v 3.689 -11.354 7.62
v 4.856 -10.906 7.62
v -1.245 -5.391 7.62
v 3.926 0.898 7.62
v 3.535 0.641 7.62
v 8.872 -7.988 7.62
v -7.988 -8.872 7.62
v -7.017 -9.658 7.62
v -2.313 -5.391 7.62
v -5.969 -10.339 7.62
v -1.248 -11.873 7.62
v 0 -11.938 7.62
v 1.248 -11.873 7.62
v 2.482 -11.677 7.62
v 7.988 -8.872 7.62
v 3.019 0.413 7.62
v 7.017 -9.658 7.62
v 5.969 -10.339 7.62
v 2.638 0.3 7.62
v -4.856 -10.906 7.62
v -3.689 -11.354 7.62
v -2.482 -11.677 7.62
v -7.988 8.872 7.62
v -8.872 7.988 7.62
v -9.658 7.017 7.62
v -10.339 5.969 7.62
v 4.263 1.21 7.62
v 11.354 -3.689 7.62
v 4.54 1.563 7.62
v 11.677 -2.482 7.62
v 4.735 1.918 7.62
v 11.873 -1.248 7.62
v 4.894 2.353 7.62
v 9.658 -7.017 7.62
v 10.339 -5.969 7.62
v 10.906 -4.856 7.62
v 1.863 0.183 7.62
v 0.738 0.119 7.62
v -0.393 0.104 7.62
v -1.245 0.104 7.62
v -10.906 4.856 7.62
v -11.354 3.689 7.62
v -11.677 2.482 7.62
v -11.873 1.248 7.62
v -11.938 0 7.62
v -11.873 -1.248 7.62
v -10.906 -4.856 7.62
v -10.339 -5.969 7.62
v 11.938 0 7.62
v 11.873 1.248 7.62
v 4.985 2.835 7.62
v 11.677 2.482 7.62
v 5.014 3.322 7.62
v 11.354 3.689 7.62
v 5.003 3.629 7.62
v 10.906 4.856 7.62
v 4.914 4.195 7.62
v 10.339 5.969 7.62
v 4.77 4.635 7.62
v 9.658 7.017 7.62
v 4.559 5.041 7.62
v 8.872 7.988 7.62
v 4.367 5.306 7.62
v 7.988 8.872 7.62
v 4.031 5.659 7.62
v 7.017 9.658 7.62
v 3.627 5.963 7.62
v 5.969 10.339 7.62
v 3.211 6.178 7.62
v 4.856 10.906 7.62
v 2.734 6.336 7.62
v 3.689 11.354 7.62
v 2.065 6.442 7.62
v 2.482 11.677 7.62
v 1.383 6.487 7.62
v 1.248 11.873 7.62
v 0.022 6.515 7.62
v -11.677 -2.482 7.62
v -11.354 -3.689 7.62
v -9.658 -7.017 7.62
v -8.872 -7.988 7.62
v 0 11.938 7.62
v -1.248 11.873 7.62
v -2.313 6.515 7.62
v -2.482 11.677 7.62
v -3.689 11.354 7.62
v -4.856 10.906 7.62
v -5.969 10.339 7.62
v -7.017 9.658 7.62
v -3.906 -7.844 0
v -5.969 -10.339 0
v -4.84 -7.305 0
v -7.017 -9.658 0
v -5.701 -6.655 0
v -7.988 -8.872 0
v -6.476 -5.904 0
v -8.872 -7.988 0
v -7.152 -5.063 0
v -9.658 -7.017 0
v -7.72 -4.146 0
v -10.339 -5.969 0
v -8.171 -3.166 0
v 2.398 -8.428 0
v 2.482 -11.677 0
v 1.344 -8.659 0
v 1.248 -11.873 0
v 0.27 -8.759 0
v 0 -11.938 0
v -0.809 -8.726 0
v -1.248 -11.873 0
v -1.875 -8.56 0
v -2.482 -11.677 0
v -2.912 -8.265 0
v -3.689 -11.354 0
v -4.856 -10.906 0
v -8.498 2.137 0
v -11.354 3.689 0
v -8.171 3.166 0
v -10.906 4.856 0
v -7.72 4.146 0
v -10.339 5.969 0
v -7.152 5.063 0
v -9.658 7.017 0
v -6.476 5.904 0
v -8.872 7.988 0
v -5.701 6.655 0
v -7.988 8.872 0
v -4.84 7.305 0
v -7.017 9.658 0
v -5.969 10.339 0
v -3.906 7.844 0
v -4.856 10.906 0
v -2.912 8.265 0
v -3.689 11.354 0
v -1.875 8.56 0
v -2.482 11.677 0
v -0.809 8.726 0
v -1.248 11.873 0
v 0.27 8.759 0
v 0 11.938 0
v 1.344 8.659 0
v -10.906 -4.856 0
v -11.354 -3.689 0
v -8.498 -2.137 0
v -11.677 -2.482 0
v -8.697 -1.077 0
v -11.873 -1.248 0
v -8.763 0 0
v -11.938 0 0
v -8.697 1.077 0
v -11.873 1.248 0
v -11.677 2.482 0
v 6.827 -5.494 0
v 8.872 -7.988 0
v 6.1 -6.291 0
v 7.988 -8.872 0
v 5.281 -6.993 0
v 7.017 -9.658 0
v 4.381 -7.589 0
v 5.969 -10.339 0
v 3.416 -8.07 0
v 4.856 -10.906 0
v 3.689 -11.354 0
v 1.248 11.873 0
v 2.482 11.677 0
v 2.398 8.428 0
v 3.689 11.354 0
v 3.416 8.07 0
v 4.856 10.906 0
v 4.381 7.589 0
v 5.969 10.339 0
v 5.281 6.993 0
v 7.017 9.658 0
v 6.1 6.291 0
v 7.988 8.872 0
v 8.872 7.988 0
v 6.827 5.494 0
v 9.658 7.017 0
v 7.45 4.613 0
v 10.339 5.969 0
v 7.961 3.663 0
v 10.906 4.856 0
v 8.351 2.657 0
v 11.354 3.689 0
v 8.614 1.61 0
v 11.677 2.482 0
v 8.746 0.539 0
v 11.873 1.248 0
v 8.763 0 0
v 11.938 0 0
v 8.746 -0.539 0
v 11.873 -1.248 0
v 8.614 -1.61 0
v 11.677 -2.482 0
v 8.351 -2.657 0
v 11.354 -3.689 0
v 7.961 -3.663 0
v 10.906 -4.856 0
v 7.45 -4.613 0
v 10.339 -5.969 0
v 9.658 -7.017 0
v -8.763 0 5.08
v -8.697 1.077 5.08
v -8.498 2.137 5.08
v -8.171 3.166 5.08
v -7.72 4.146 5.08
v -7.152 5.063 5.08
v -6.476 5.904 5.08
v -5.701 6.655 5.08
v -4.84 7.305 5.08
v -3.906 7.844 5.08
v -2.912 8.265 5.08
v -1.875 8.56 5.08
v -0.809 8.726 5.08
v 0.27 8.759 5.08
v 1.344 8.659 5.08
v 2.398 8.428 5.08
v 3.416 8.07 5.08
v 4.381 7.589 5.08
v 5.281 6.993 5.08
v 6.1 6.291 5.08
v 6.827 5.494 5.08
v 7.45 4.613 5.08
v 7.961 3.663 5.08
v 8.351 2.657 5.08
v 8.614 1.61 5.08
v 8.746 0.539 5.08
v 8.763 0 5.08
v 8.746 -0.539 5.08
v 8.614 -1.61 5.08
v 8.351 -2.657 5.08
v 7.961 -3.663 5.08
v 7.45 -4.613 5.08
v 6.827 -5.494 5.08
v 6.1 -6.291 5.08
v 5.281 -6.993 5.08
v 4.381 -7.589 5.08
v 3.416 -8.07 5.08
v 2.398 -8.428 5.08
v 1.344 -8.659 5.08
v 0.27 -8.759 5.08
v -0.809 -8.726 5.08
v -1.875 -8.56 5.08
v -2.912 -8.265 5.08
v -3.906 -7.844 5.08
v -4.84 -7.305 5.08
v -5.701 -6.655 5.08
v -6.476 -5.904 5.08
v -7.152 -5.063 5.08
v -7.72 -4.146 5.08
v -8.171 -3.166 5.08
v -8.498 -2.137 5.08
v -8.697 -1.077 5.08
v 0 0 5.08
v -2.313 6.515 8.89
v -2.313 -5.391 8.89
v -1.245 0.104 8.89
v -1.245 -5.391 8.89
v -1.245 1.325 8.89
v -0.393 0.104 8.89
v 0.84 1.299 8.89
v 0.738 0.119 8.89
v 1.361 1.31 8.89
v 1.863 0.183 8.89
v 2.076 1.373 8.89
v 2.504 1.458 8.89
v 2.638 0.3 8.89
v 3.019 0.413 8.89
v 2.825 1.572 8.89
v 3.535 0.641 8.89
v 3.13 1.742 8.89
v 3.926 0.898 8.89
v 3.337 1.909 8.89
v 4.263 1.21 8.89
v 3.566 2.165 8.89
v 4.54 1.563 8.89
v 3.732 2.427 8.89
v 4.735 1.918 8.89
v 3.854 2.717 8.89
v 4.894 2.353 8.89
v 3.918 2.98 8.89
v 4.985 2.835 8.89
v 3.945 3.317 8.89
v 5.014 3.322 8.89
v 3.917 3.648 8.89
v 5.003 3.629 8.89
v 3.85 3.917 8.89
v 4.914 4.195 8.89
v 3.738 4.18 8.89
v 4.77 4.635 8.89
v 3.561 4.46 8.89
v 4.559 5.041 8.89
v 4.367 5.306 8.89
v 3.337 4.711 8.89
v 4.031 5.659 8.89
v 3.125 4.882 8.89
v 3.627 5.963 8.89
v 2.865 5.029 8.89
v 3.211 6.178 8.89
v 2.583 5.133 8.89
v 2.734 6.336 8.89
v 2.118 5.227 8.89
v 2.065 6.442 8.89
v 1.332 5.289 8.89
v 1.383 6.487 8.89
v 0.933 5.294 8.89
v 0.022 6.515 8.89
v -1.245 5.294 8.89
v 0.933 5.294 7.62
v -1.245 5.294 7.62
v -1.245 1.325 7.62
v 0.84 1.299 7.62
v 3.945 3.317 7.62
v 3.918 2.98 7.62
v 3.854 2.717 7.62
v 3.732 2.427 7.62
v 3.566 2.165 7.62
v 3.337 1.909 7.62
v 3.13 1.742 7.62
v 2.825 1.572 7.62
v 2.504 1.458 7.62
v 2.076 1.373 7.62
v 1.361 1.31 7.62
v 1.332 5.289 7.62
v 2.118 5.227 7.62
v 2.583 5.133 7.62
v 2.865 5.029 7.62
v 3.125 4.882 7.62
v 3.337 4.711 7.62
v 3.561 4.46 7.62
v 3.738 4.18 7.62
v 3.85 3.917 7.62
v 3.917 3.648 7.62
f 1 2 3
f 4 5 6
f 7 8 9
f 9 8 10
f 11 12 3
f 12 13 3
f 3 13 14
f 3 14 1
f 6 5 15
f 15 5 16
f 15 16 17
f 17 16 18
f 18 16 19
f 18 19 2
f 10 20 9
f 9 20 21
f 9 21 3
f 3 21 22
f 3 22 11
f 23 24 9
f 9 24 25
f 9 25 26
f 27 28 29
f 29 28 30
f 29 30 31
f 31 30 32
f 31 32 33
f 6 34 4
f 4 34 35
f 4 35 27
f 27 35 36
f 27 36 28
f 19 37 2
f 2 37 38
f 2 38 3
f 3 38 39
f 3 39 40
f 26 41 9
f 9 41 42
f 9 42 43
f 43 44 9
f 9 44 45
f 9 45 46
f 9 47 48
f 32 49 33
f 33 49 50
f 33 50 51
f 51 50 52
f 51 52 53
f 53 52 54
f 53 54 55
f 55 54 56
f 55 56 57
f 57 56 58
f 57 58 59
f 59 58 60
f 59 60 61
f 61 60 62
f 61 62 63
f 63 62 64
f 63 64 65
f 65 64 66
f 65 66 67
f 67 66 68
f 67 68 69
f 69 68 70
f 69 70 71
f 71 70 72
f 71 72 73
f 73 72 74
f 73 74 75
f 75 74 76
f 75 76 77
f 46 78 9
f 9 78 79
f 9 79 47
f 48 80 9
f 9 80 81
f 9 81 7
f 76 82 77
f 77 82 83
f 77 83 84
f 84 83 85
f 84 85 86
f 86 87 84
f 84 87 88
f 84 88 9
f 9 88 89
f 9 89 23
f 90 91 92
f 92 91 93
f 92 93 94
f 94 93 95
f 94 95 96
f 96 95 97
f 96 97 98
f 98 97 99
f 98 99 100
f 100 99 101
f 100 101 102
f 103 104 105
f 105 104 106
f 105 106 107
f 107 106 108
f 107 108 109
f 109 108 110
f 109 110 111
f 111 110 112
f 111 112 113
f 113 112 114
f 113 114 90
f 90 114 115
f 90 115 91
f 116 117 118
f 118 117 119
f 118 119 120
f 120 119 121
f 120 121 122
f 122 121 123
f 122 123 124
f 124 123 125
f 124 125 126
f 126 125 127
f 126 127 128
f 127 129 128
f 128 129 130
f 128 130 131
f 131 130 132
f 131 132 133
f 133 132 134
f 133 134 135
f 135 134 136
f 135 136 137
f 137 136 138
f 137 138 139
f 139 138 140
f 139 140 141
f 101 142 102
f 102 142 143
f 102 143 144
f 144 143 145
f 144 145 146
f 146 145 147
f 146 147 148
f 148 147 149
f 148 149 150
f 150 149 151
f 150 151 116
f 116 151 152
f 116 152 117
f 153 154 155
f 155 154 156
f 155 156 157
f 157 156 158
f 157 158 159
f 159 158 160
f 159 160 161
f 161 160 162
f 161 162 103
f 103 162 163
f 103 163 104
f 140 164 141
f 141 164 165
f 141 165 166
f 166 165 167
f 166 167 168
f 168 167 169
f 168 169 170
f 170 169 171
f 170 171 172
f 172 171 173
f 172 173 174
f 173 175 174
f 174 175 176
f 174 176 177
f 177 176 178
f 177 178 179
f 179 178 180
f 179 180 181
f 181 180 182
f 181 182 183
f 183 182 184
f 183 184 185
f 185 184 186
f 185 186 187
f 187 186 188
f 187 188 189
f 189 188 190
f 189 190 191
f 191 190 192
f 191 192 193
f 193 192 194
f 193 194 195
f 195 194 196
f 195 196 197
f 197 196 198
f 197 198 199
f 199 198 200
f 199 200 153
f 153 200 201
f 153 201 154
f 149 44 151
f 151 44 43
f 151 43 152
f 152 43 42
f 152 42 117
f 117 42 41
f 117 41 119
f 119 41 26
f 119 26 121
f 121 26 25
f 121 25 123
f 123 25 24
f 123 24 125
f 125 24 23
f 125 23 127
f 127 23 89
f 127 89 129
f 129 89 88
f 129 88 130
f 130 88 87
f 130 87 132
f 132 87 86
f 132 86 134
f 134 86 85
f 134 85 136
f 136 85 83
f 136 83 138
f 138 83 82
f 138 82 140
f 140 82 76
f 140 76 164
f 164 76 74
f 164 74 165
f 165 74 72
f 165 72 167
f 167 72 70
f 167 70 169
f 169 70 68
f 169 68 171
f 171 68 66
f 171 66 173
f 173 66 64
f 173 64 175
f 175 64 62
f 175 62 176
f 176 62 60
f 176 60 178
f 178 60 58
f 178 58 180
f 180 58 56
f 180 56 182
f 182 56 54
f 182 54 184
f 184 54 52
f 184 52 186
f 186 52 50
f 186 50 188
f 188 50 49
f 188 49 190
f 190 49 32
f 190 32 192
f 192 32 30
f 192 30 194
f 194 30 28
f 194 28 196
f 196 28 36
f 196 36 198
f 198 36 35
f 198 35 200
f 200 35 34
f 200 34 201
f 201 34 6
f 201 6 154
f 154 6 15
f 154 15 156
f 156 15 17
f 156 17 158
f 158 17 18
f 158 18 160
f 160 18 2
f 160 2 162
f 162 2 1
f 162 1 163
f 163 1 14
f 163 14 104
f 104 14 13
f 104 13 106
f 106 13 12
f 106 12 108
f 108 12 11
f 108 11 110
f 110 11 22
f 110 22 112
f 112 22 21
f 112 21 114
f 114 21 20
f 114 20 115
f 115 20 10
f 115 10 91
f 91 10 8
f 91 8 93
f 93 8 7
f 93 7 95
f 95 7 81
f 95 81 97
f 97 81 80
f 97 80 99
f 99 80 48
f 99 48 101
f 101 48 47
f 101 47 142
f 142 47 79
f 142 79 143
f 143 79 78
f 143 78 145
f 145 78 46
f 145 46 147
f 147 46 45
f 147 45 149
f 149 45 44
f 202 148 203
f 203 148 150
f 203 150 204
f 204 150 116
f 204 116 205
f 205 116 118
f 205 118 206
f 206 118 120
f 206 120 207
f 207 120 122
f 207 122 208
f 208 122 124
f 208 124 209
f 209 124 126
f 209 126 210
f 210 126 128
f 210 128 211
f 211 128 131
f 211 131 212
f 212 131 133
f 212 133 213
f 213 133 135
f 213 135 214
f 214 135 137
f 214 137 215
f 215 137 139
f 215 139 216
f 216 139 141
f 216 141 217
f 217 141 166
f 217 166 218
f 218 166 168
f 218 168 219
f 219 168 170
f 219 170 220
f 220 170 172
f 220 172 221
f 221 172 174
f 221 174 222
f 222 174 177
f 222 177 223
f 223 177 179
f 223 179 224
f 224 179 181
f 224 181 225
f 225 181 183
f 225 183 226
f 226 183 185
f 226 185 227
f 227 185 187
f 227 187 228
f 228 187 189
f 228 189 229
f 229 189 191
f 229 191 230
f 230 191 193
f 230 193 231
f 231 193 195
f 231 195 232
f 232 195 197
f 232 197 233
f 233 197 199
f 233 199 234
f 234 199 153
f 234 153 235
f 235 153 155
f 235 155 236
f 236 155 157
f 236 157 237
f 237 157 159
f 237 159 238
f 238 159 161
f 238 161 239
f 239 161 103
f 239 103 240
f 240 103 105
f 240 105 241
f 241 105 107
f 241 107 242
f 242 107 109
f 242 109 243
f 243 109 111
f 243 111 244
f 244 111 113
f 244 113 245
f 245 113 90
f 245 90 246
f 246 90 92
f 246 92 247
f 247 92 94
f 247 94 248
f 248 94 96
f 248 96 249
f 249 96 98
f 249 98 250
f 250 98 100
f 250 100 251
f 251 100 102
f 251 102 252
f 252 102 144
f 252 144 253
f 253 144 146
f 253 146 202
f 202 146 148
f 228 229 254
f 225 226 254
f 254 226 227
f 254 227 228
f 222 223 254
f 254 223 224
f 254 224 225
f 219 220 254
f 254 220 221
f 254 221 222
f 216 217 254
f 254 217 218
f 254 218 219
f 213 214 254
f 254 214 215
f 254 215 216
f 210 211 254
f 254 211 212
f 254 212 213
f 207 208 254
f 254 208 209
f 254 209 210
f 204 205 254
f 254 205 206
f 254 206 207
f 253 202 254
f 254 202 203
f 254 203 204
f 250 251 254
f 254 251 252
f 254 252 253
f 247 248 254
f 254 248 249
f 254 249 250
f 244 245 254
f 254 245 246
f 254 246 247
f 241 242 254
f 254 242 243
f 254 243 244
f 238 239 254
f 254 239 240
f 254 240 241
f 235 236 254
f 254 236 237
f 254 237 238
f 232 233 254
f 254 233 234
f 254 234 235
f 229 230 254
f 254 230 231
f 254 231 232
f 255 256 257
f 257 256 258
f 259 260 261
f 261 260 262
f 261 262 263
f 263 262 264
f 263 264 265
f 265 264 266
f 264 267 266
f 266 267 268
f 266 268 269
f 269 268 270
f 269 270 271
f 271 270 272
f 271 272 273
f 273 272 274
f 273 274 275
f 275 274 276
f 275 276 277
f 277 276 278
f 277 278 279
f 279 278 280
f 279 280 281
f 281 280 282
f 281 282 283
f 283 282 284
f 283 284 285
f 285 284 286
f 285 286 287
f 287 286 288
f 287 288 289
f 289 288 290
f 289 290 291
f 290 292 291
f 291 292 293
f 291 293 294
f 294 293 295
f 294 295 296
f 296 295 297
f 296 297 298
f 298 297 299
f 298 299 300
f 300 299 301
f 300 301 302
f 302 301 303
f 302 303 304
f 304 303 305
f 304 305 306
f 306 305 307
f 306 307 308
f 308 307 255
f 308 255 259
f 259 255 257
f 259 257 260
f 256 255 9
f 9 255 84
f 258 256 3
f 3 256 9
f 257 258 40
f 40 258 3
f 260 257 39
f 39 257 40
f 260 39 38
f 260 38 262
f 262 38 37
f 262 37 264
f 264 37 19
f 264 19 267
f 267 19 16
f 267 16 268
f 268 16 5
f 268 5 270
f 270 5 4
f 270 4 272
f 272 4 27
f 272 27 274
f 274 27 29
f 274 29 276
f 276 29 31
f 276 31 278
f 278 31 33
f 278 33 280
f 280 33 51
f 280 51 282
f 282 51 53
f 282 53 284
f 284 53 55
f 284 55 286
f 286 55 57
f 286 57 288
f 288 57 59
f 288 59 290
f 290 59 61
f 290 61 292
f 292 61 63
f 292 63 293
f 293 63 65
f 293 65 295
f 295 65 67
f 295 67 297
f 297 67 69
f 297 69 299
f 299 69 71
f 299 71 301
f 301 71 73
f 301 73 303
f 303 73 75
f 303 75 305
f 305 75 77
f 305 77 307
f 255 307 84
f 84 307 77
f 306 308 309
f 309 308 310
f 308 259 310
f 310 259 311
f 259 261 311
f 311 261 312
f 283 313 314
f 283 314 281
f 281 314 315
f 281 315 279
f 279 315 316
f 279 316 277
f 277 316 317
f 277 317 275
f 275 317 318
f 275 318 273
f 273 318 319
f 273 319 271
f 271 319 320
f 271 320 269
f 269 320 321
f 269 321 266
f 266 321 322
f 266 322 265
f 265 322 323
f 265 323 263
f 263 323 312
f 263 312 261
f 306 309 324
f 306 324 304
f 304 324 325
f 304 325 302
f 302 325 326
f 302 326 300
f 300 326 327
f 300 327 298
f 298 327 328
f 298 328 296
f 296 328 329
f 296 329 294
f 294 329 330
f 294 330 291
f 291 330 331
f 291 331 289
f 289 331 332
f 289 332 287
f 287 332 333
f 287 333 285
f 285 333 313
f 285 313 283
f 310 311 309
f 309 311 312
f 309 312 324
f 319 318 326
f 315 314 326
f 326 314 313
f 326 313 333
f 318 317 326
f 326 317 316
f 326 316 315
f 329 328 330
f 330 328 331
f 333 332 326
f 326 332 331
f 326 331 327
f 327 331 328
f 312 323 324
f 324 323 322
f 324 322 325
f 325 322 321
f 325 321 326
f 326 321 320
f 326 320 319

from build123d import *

# Parameters (mm, degrees)
SKETCH1_R           = 11.938
SKETCH1_R_2         = 8.763
BOSS_EXTRUDE1_DEPTH = 5.08
SKETCH2_R           = 11.938
BOSS_EXTRUDE2_DEPTH = 2.54
BOSS_EXTRUDE3_DEPTH = 1.27


with BuildPart() as part:
    # Sketch1 → Boss-Extrude1 (new body)
    with BuildSketch(Plane.XY):
        Circle(SKETCH1_R)
        Circle(SKETCH1_R_2, mode=Mode.SUBTRACT)
    extrude(amount=BOSS_EXTRUDE1_DEPTH)

    # Sketch2 → Boss-Extrude2 (add)
    with BuildSketch(Plane.XY.offset(5.08)):
        Circle(SKETCH2_R)
    extrude(amount=BOSS_EXTRUDE2_DEPTH)

    # Sketch3 → Boss-Extrude3 (add)
    with BuildSketch(Plane.XY.offset(7.62)):
        with BuildLine():
            Line((-2.313117578, 6.515240045), (0.02186214, 6.515240045))
            add(Edge.make_bspline(
                [(0.02186214, 6.515240045), (0.182463526, 6.515063505), (0.490182914, 6.514725246), (0.931445737, 6.504469727), (1.332209199, 6.490771783), (1.691609156, 6.471783379), (2.010751418, 6.449343193), (2.288191875, 6.417869737), (2.526111258, 6.385007482), (2.668668019, 6.351597161), (2.733682302, 6.336360087)],
                knots=[0, 0, 0, 0, 1.415646017, 2.712440637, 3.8905458, 4.950247383, 5.884950622, 6.709939814, 7.411656543, 8, 8, 8, 8], degree=3))
            add(Edge.make_bspline(
                [(2.733682302, 6.336360087), (2.81598352, 6.313833632), (2.97864663, 6.269311531), (3.213033214, 6.180138061), (3.436033349, 6.074403196), (3.648412132, 5.953898543), (3.847559754, 5.813453901), (4.036447447, 5.658762398), (4.213408273, 5.486252508), (4.377447115, 5.297859098), (4.528094507, 5.096744813), (4.657803517, 4.879907406), (4.766413102, 4.650996811), (4.859565123, 4.410172252), (4.926609062, 4.15541142), (4.977115034, 3.888484478), (5.009172195, 3.609420041), (5.012242517, 3.418716385), (5.013805499, 3.321636529)],
                knots=[0, 0, 0, 0, 0.999701418, 1.975846123, 2.934577507, 3.890451536, 4.834027766, 5.787354733, 6.749476667, 7.726910423, 8.712836071, 9.690891519, 10.682875813, 11.679750201, 12.712814741, 13.765529915, 14.8625177, 16, 16, 16, 16], degree=3))
            add(Edge.make_bspline(
                [(5.013805499, 3.321636529), (5.012371903, 3.223740699), (5.009566974, 3.032200896), (4.975901932, 2.751986322), (4.930555476, 2.484203227), (4.860828897, 2.229445364), (4.769505669, 1.989225645), (4.662376454, 1.759873061), (4.533164623, 1.545289534), (4.384694265, 1.344696036), (4.219532145, 1.157904281), (4.03837706, 0.986267882), (3.84196036, 0.830791516), (3.630906267, 0.691126633), (3.403157228, 0.570511968), (3.162167402, 0.462480421), (2.905842112, 0.371751188), (2.728464453, 0.324023926), (2.638279658, 0.299757773)],
                knots=[0, 0, 0, 0, 1.121902311, 2.195077645, 3.232258892, 4.234102512, 5.217864754, 6.176164875, 7.132989551, 8.084763148, 9.034132444, 9.988522005, 10.94243251, 11.903244335, 12.886203696, 13.894208494, 14.929344452, 16, 16, 16, 16], degree=3))
            add(Edge.make_bspline(
                [(2.638279658, 0.299757773), (2.563687566, 0.283895311), (2.400214661, 0.249131802), (2.130988079, 0.210322676), (1.817529222, 0.177197445), (1.46026593, 0.15236054), (1.059518887, 0.131098126), (0.615071307, 0.114197735), (0.126050741, 0.104911357), (-0.215050545, 0.10443241), (-0.393139363, 0.104182352)],
                knots=[0, 0, 0, 0, 0.601384939, 1.31797006, 2.144135048, 3.087295005, 4.142315834, 5.309527816, 6.595305764, 8, 8, 8, 8], degree=3))
            Line((-0.393139363, 0.104182352), (-1.244607962, 0.104182352))
            Line((-1.244607962, 0.104182352), (-1.244607962, -5.391009955))
            Line((-1.244607962, -5.391009955), (-2.313117578, -5.391009955))
            Line((-2.313117578, -5.391009955), (-2.313117578, 6.515240045))
        make_face()
        with BuildLine():
            Line((-1.244607962, 5.294086198), (-1.244607962, 1.325336198))
            Line((-1.244607962, 1.325336198), (0.839939814, 1.299100471))
            add(Edge.make_bspline(
                [(0.839939814, 1.299100471), (0.94172099, 1.299047867), (1.138207453, 1.298946317), (1.422039605, 1.312503193), (1.685369413, 1.328153219), (1.927388013, 1.351067388), (2.148204504, 1.383456665), (2.34818708, 1.416153738), (2.525785069, 1.463456802), (2.733631461, 1.527148671), (2.96523642, 1.635776587), (3.217198348, 1.793448981), (3.430730432, 1.99442889), (3.615509638, 2.220402137), (3.762146598, 2.47179114), (3.869493322, 2.74076672), (3.932566366, 3.024570386), (3.941023864, 3.218772002), (3.945295884, 3.316866397)],
                knots=[0, 0, 0, 0, 1.160613943, 2.240541288, 3.23993089, 4.169200891, 5.011653406, 5.7853311, 6.478053781, 7.106038997, 8.262395093, 9.384106736, 10.481365981, 11.59014053, 12.70357646, 13.786202915, 14.881775077, 16, 16, 16, 16], degree=3))
            add(Edge.make_bspline(
                [(3.945295884, 3.316866397), (3.941000631, 3.41258759), (3.9324622, 3.602869475), (3.868998951, 3.881743651), (3.762355303, 4.147884753), (3.614525281, 4.396123552), (3.435111258, 4.62128368), (3.226584029, 4.816876585), (2.989434452, 4.974112913), (2.768834666, 5.075599345), (2.572887774, 5.137563809), (2.402689768, 5.180919025), (2.210520599, 5.215534257), (1.996317706, 5.24356328), (1.761741333, 5.267557643), (1.504776173, 5.283838512), (1.226395654, 5.293368466), (1.033138266, 5.293841162), (0.932957392, 5.294086198)],
                knots=[0, 0, 0, 0, 1.120700087, 2.227813068, 3.331159281, 4.466773991, 5.599788987, 6.693661531, 7.80175334, 8.91857717, 9.525282508, 10.207424825, 10.974604443, 11.810962634, 12.737642355, 13.736264703, 14.826523623, 16, 16, 16, 16], degree=3))
            Line((0.932957392, 5.294086198), (-1.244607962, 5.294086198))
        make_face(mode=Mode.SUBTRACT)
    extrude(amount=BOSS_EXTRUDE3_DEPTH)


solid = part.part
